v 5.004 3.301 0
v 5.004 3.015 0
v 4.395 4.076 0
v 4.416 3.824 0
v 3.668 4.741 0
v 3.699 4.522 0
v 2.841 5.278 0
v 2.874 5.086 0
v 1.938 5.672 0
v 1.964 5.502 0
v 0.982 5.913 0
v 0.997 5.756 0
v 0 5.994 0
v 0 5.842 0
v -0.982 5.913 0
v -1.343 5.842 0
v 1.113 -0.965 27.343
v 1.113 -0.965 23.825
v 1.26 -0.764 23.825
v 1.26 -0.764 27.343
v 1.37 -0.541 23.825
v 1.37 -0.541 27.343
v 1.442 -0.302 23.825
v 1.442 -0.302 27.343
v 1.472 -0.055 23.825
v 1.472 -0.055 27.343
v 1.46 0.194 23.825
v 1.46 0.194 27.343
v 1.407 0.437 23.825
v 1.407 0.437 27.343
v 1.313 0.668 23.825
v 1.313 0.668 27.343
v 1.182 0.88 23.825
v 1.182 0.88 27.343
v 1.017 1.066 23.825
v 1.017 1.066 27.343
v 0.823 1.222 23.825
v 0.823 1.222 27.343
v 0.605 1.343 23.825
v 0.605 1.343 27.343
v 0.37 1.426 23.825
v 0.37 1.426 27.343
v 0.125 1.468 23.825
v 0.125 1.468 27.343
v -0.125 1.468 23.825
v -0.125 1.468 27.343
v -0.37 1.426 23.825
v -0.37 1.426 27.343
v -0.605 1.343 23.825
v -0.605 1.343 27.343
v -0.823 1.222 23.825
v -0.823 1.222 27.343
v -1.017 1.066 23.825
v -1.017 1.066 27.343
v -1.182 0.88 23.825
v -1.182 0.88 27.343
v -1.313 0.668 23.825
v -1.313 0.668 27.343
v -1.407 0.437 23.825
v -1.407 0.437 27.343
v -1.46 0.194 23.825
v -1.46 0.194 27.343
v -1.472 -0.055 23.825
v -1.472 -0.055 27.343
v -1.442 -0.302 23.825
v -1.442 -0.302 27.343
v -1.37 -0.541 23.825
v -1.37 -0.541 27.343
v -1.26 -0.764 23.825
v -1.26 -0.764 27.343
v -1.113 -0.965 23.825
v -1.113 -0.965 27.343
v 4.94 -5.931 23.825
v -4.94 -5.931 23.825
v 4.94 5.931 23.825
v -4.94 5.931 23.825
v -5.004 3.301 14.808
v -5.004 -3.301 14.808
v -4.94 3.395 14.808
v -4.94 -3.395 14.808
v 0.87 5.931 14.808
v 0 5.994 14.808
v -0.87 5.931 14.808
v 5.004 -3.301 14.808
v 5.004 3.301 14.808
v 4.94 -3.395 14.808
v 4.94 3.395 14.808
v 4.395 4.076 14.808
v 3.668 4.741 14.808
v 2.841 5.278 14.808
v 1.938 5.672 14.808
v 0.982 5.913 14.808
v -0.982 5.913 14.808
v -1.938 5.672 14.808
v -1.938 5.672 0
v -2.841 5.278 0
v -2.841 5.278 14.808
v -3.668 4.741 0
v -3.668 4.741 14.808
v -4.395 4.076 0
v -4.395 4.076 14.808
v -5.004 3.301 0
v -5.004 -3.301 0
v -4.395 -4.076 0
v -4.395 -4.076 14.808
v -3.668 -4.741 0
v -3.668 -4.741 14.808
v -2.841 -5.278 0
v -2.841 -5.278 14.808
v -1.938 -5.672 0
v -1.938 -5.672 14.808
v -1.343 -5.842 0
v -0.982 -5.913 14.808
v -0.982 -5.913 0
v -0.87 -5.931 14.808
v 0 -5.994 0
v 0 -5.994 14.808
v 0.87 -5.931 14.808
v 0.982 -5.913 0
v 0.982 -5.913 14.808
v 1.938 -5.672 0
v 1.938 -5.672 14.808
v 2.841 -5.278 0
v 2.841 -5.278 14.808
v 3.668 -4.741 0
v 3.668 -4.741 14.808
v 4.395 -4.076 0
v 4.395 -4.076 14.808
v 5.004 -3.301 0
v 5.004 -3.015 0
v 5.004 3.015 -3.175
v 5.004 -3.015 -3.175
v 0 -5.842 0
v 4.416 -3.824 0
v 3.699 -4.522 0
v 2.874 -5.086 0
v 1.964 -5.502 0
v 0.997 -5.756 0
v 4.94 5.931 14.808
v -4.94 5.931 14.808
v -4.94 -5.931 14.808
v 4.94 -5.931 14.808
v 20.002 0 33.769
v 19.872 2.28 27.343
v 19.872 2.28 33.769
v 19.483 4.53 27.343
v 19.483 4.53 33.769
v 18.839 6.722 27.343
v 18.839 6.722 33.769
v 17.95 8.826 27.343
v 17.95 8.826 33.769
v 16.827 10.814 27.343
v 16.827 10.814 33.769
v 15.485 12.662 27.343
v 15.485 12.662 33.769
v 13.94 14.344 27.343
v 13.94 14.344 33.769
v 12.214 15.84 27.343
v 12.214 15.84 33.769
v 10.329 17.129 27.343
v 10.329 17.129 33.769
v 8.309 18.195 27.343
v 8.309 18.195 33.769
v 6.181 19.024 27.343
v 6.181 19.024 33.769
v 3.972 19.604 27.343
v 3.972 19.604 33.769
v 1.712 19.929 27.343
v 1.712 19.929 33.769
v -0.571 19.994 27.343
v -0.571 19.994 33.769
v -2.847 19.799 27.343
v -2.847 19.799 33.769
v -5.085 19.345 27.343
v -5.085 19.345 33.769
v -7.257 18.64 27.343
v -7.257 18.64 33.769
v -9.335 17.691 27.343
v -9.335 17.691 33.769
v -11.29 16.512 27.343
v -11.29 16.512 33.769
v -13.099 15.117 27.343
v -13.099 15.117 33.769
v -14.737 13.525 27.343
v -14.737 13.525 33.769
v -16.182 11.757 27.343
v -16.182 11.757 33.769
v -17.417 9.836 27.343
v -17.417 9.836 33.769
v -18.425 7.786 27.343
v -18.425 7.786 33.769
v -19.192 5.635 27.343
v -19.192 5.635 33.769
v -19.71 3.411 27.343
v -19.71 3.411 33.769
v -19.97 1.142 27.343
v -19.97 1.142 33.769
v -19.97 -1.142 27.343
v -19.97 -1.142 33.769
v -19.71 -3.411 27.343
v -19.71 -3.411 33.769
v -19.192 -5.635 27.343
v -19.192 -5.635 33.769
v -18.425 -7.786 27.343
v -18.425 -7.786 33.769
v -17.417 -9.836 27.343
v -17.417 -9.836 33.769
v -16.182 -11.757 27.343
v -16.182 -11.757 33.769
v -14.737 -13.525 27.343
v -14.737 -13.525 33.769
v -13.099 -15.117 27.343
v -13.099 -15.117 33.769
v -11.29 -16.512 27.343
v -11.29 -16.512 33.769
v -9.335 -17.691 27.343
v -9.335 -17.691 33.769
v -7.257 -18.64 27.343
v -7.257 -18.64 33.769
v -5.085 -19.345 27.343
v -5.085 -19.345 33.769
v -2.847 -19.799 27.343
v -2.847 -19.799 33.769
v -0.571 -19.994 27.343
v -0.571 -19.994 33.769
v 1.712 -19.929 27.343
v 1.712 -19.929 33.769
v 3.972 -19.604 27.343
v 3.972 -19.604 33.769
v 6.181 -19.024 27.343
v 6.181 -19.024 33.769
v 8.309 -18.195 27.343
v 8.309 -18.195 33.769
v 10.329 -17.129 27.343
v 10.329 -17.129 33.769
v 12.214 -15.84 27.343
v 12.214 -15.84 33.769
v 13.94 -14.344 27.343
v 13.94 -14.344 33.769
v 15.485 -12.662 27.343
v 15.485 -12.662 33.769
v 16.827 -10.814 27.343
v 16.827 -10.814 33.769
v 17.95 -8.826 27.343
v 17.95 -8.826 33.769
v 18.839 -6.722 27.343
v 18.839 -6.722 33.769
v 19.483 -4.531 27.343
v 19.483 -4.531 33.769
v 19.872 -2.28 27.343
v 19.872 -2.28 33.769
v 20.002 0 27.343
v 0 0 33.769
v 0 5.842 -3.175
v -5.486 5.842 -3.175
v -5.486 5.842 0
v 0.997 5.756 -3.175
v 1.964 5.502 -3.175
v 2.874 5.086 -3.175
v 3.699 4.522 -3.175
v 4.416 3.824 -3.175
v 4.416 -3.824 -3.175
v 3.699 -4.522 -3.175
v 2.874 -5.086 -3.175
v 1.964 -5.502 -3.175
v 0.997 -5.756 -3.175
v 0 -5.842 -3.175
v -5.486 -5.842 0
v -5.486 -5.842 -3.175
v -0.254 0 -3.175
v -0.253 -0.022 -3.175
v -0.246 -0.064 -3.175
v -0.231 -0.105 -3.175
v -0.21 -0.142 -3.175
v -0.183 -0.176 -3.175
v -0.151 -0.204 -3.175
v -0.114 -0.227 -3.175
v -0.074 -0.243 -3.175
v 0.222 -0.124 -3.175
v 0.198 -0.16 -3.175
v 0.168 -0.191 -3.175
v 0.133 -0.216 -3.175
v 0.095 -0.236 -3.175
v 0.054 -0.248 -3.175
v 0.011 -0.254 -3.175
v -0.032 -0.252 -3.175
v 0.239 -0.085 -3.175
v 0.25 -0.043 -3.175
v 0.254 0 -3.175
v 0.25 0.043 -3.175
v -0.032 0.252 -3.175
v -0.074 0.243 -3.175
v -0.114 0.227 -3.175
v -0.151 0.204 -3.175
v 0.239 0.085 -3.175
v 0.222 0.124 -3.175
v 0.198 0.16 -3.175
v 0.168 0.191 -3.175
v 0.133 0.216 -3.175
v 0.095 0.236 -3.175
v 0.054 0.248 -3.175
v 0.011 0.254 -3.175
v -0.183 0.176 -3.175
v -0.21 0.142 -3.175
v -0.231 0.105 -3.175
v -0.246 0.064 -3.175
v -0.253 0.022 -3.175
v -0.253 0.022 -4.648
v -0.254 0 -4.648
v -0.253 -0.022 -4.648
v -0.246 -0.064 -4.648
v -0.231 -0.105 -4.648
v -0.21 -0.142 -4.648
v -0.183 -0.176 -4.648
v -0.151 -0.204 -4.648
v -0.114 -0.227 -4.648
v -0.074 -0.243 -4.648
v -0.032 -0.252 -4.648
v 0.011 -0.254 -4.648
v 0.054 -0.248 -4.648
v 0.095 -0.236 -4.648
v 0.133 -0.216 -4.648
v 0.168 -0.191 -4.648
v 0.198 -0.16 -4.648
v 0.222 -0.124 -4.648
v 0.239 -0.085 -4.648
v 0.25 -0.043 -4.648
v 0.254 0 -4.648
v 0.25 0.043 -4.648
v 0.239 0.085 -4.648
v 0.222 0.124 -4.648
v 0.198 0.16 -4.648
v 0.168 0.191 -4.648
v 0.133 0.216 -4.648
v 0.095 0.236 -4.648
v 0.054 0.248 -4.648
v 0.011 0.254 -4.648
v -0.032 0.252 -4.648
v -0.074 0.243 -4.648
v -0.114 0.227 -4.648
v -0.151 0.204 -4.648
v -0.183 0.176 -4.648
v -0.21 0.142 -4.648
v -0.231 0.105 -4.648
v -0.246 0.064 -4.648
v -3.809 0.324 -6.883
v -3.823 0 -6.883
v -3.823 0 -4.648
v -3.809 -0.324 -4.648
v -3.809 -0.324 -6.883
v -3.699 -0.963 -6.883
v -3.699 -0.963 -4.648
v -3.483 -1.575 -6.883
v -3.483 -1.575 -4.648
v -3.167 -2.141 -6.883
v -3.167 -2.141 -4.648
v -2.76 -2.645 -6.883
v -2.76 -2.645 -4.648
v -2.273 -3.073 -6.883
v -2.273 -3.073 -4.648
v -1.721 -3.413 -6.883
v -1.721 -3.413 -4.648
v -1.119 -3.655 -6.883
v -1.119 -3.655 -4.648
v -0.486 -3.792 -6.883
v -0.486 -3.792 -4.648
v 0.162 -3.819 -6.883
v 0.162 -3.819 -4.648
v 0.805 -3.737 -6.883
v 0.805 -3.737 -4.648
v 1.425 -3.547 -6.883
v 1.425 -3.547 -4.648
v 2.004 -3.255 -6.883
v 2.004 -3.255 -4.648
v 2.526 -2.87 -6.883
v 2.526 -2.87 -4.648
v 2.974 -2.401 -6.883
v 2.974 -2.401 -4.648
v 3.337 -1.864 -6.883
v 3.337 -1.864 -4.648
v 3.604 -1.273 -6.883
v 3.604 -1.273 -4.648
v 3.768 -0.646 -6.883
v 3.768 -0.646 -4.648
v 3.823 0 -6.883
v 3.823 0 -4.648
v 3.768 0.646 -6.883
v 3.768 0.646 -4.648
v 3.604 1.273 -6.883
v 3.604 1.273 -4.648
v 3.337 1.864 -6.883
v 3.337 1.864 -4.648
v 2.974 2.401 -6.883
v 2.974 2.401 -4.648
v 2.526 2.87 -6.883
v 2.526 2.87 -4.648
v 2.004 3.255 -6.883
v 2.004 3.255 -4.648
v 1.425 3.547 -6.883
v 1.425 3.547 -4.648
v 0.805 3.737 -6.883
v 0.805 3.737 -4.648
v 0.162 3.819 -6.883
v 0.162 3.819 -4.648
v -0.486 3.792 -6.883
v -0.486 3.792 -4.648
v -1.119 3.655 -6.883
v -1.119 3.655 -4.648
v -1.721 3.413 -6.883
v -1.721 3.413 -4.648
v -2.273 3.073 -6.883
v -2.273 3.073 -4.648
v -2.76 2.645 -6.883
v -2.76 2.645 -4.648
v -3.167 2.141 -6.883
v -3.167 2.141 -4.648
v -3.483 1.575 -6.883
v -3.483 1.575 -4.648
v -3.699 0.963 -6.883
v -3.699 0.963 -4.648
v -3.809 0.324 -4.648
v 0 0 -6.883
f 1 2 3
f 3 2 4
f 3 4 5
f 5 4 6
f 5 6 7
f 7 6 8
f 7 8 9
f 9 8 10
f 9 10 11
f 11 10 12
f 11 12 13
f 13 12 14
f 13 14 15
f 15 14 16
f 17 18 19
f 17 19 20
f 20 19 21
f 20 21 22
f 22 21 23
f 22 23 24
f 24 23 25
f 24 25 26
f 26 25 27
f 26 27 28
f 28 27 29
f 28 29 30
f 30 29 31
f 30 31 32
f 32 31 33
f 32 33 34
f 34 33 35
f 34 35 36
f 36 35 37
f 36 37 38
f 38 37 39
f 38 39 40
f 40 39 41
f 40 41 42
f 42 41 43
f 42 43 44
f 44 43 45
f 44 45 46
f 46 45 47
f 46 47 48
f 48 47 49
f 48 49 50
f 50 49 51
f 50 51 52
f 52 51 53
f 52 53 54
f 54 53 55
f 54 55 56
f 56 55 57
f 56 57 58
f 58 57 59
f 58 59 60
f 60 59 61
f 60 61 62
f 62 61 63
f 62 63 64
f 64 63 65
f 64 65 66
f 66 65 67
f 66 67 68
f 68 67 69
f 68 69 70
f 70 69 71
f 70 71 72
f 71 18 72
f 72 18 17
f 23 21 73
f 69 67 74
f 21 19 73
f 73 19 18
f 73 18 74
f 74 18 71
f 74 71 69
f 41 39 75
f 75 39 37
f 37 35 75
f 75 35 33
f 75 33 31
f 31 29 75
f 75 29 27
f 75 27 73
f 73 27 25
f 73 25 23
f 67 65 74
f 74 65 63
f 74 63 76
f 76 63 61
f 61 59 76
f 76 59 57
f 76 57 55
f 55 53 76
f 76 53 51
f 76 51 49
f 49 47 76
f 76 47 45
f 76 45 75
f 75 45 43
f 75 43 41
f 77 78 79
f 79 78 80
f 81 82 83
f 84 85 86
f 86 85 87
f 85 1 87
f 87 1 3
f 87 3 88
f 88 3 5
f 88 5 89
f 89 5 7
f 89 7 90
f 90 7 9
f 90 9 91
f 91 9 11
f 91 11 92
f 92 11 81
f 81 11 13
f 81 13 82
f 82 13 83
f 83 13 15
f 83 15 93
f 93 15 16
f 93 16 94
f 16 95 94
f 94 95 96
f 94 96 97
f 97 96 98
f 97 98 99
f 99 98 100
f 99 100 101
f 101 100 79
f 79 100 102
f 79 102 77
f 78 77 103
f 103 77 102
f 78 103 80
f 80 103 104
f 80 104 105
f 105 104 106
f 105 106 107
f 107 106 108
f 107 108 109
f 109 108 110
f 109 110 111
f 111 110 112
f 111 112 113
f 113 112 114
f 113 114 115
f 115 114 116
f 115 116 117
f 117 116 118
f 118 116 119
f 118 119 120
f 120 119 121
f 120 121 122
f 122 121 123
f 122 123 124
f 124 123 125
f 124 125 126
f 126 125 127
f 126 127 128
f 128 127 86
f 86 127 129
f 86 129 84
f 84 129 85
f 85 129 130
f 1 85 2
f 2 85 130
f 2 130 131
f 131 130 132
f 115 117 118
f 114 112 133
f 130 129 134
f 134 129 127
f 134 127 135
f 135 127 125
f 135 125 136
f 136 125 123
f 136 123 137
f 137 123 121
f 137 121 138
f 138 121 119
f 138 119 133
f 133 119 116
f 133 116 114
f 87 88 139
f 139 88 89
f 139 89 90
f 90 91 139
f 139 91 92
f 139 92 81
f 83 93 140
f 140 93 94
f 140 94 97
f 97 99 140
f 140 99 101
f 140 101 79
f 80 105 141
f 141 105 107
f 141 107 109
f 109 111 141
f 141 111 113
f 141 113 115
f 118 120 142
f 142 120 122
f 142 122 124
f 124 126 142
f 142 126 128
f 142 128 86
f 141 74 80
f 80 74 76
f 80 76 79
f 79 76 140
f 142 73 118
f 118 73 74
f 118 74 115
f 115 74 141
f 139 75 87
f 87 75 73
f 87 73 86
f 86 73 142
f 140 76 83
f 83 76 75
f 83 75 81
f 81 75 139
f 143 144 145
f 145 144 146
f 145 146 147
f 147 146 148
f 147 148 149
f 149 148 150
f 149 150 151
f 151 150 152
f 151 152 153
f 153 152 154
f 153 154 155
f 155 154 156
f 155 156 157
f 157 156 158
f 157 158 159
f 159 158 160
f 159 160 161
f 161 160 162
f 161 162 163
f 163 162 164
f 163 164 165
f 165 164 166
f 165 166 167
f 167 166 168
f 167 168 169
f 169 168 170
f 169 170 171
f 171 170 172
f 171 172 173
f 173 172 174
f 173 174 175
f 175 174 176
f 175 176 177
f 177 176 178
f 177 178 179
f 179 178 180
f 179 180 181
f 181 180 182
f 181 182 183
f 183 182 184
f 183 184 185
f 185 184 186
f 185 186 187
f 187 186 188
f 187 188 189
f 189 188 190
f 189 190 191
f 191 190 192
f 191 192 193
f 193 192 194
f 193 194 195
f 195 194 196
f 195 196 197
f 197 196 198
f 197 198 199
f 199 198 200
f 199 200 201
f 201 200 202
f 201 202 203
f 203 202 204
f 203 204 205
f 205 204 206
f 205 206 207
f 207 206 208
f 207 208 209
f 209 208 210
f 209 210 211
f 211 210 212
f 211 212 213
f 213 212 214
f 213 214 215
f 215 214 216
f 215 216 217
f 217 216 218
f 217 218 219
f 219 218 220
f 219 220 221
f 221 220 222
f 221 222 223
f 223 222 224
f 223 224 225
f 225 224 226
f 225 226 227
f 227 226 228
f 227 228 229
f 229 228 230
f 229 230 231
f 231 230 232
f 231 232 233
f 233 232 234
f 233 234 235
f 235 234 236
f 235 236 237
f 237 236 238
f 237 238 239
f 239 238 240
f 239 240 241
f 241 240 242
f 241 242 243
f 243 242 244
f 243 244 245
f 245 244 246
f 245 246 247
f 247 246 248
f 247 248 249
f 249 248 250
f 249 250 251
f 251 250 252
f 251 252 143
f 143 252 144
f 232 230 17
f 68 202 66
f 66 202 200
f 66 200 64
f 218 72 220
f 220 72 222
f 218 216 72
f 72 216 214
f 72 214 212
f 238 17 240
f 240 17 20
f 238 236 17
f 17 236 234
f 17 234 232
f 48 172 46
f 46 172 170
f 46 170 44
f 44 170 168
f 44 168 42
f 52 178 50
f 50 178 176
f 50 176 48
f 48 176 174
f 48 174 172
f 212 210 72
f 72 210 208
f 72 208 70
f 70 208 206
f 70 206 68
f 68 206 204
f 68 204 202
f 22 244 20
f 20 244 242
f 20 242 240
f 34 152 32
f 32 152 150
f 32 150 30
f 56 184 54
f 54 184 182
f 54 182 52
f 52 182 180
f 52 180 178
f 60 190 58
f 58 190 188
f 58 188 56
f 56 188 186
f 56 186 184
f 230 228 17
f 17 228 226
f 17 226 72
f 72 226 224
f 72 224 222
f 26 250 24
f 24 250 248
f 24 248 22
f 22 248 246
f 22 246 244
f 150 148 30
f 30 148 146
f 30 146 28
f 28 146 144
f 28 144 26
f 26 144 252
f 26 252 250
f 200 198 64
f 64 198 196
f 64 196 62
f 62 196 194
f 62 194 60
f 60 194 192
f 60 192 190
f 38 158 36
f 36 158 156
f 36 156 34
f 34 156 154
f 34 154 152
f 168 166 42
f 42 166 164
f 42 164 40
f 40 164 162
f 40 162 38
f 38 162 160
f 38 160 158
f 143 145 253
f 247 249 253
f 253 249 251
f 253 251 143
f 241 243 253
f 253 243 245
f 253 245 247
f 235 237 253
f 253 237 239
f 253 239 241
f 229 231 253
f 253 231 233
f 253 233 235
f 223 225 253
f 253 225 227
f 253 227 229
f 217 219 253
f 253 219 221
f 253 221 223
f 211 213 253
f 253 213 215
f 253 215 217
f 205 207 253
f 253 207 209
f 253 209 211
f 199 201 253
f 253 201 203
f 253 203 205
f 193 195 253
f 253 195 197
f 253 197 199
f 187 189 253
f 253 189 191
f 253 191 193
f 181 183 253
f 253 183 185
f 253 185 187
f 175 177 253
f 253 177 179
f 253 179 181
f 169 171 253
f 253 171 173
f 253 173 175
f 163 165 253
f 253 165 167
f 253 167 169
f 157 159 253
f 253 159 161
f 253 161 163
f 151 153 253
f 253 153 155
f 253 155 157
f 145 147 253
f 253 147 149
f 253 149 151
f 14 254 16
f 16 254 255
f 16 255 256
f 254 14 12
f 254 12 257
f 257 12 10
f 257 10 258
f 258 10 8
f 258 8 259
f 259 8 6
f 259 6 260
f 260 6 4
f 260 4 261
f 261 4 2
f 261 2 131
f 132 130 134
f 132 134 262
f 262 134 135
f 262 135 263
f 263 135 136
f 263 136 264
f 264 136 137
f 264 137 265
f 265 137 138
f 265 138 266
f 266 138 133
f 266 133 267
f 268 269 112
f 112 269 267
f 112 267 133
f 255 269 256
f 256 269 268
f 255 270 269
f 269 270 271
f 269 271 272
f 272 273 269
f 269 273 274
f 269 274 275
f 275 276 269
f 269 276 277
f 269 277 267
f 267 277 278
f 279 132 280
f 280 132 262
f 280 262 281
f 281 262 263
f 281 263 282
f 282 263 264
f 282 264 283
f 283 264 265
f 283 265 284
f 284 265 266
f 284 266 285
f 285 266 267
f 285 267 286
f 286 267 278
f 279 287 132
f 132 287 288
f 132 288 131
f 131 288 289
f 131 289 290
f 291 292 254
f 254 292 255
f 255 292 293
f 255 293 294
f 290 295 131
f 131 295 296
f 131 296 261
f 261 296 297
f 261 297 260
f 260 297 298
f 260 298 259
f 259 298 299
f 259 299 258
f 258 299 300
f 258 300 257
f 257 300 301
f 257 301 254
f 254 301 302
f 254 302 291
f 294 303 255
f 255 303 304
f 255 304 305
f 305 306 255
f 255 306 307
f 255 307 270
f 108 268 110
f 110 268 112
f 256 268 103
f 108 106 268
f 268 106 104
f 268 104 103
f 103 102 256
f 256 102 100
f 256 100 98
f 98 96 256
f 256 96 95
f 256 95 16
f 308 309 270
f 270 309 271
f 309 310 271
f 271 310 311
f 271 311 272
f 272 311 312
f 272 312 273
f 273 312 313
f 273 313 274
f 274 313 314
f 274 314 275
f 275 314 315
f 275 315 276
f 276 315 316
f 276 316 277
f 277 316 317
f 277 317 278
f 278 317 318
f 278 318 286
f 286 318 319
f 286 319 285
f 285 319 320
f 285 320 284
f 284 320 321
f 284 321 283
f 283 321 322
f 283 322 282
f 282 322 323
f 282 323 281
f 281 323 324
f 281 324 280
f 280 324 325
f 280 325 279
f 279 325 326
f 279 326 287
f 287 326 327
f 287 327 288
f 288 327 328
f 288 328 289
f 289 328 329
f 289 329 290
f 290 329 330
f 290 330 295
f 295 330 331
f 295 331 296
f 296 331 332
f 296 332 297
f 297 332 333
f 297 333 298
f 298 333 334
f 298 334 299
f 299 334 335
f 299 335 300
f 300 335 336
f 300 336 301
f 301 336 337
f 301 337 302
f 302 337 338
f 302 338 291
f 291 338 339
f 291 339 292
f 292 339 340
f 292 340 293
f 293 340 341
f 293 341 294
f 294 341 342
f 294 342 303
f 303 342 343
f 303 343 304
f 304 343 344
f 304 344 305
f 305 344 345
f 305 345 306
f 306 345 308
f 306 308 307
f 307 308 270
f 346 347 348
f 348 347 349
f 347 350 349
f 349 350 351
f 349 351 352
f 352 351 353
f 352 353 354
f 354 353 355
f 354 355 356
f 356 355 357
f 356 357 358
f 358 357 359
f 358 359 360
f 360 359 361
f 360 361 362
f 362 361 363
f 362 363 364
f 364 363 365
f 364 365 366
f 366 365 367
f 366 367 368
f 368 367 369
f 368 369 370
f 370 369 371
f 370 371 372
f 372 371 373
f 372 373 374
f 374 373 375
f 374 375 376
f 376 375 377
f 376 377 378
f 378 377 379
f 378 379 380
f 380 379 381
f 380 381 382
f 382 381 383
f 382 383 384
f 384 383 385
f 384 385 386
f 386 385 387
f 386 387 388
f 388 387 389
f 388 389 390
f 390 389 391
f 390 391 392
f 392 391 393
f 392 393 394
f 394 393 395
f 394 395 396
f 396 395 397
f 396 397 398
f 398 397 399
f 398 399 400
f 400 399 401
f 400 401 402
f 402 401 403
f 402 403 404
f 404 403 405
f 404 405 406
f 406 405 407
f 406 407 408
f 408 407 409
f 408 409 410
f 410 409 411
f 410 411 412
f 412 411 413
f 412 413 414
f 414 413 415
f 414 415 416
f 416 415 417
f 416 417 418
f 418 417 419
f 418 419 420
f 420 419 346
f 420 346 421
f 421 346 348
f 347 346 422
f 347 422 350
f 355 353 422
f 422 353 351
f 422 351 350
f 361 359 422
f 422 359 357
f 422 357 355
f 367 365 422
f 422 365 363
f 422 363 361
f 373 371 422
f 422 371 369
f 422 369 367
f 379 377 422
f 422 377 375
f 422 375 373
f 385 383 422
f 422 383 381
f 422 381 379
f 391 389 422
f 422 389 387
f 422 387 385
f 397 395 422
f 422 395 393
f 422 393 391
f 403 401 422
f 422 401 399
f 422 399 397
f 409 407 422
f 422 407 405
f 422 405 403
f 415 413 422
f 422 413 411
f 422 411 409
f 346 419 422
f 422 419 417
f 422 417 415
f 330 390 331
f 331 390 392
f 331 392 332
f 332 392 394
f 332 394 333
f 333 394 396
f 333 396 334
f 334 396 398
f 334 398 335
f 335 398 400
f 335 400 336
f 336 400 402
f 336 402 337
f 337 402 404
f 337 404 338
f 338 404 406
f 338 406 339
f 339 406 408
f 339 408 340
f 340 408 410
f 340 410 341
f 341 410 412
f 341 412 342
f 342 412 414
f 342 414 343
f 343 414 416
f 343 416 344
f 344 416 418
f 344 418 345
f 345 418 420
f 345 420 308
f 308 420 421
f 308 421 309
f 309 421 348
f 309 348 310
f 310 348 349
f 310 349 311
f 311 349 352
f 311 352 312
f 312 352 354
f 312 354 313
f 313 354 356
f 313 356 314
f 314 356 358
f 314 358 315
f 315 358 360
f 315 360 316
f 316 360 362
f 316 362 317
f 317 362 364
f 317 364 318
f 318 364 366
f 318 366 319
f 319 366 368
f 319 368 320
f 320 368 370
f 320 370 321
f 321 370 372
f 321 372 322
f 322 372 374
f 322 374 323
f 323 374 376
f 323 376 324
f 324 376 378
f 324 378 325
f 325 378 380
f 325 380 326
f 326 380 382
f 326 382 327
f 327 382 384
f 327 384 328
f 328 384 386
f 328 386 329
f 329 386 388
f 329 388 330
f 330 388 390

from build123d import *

# Parameters (mm, degrees)
BOSS_EXTRUDE1_DEPTH = 14.8082
SKETCH2_W           = 9.8806
SKETCH2_H           = 11.8618
BOSS_EXTRUDE2_DEPTH = 9.017
BOSS_EXTRUDE3_DEPTH = 9.9441
BOSS_EXTRUDE4_START = -6.4262
SKETCH4_R           = 20.0025
BOSS_EXTRUDE4_DEPTH = 6.4262
BOSS_EXTRUDE5_DEPTH = 3.175
SKETCH7_R           = 0.254
BOSS_EXTRUDE6_DEPTH = 1.4732
SKETCH8_R           = 3.8227
BOSS_EXTRUDE7_DEPTH = 2.2352


with BuildPart() as part:
    # Sketch1 → Boss-Extrude1 (new body)
    with BuildSketch(Plane.XY):
        with BuildLine():
            Line((-5.0038, 3.300729756), (-5.0038, -3.300729756))
            ThreePointArc((-5.0038, -3.300729756), (0, -5.9944), (5.0038, -3.300729756))
            Line((5.0038, -3.300729756), (5.0038, 3.300729756))
            ThreePointArc((5.0038, 3.300729756), (0, 5.9944), (-5.0038, 3.300729756))
        make_face()
    extrude(amount=BOSS_EXTRUDE1_DEPTH)

    # Sketch2 → Boss-Extrude2 (add)
    with BuildSketch(Plane.XY.offset(14.8082)):
        Rectangle(SKETCH2_W, SKETCH2_H)
    extrude(amount=BOSS_EXTRUDE2_DEPTH)

    # Sketch3 → Boss-Extrude3 (add)
    with BuildSketch(Plane.XY.offset(23.8252)):
        with BuildLine():
            Line((-1.112972237, -0.9652), (1.112972237, -0.9652))
            ThreePointArc((1.112972237, -0.9652), (0, 1.4732), (-1.112972237, -0.9652))
        make_face()
    extrude(amount=BOSS_EXTRUDE3_DEPTH)

    # Sketch4 → Boss-Extrude4 (add)
    with BuildSketch(Plane.XY.offset(33.7693).offset(BOSS_EXTRUDE4_START)):
        Circle(SKETCH4_R)
        with BuildLine():
            Line((-1.112972237, -0.9652), (1.112972237, -0.9652))
            ThreePointArc((1.112972237, -0.9652), (0, 1.4732), (-1.112972237, -0.9652))
        make_face(mode=Mode.SUBTRACT)
    extrude(amount=BOSS_EXTRUDE4_DEPTH)

    # Sketch5 → Boss-Extrude5 (add)
    with BuildSketch(Plane(origin=(0, 0, 0), x_dir=(-1, 0, 0), z_dir=(0, 0, -1))):
        with BuildLine():
            Line((0, -5.842), (5.4864, -5.842))
            Line((5.4864, -5.842), (5.4864, 5.842))
            Line((5.4864, 5.842), (0, 5.842))
            ThreePointArc((0, 5.842), (-2.873554597, 5.086417991), (-5.0038, 3.015120157))
            Line((-5.0038, 3.015120157), (-5.0038, -3.015120157))
            ThreePointArc((-5.0038, -3.015120157), (-2.873554597, -5.086417991), (0, -5.842))
        make_face()
    extrude(amount=BOSS_EXTRUDE5_DEPTH)

    # Sketch7 → Boss-Extrude6 (add)
    with BuildSketch(Plane(origin=(0, 0, -3.175), x_dir=(-1, 0, 0), z_dir=(0, 0, -1))):
        Circle(SKETCH7_R)
    extrude(amount=BOSS_EXTRUDE6_DEPTH)

    # Sketch8 → Boss-Extrude7 (add)
    with BuildSketch(Plane(origin=(0, 0, -4.6482), x_dir=(-1, 0, 0), z_dir=(0, 0, -1))):
        Circle(SKETCH8_R)
    extrude(amount=BOSS_EXTRUDE7_DEPTH)


solid = part.part
